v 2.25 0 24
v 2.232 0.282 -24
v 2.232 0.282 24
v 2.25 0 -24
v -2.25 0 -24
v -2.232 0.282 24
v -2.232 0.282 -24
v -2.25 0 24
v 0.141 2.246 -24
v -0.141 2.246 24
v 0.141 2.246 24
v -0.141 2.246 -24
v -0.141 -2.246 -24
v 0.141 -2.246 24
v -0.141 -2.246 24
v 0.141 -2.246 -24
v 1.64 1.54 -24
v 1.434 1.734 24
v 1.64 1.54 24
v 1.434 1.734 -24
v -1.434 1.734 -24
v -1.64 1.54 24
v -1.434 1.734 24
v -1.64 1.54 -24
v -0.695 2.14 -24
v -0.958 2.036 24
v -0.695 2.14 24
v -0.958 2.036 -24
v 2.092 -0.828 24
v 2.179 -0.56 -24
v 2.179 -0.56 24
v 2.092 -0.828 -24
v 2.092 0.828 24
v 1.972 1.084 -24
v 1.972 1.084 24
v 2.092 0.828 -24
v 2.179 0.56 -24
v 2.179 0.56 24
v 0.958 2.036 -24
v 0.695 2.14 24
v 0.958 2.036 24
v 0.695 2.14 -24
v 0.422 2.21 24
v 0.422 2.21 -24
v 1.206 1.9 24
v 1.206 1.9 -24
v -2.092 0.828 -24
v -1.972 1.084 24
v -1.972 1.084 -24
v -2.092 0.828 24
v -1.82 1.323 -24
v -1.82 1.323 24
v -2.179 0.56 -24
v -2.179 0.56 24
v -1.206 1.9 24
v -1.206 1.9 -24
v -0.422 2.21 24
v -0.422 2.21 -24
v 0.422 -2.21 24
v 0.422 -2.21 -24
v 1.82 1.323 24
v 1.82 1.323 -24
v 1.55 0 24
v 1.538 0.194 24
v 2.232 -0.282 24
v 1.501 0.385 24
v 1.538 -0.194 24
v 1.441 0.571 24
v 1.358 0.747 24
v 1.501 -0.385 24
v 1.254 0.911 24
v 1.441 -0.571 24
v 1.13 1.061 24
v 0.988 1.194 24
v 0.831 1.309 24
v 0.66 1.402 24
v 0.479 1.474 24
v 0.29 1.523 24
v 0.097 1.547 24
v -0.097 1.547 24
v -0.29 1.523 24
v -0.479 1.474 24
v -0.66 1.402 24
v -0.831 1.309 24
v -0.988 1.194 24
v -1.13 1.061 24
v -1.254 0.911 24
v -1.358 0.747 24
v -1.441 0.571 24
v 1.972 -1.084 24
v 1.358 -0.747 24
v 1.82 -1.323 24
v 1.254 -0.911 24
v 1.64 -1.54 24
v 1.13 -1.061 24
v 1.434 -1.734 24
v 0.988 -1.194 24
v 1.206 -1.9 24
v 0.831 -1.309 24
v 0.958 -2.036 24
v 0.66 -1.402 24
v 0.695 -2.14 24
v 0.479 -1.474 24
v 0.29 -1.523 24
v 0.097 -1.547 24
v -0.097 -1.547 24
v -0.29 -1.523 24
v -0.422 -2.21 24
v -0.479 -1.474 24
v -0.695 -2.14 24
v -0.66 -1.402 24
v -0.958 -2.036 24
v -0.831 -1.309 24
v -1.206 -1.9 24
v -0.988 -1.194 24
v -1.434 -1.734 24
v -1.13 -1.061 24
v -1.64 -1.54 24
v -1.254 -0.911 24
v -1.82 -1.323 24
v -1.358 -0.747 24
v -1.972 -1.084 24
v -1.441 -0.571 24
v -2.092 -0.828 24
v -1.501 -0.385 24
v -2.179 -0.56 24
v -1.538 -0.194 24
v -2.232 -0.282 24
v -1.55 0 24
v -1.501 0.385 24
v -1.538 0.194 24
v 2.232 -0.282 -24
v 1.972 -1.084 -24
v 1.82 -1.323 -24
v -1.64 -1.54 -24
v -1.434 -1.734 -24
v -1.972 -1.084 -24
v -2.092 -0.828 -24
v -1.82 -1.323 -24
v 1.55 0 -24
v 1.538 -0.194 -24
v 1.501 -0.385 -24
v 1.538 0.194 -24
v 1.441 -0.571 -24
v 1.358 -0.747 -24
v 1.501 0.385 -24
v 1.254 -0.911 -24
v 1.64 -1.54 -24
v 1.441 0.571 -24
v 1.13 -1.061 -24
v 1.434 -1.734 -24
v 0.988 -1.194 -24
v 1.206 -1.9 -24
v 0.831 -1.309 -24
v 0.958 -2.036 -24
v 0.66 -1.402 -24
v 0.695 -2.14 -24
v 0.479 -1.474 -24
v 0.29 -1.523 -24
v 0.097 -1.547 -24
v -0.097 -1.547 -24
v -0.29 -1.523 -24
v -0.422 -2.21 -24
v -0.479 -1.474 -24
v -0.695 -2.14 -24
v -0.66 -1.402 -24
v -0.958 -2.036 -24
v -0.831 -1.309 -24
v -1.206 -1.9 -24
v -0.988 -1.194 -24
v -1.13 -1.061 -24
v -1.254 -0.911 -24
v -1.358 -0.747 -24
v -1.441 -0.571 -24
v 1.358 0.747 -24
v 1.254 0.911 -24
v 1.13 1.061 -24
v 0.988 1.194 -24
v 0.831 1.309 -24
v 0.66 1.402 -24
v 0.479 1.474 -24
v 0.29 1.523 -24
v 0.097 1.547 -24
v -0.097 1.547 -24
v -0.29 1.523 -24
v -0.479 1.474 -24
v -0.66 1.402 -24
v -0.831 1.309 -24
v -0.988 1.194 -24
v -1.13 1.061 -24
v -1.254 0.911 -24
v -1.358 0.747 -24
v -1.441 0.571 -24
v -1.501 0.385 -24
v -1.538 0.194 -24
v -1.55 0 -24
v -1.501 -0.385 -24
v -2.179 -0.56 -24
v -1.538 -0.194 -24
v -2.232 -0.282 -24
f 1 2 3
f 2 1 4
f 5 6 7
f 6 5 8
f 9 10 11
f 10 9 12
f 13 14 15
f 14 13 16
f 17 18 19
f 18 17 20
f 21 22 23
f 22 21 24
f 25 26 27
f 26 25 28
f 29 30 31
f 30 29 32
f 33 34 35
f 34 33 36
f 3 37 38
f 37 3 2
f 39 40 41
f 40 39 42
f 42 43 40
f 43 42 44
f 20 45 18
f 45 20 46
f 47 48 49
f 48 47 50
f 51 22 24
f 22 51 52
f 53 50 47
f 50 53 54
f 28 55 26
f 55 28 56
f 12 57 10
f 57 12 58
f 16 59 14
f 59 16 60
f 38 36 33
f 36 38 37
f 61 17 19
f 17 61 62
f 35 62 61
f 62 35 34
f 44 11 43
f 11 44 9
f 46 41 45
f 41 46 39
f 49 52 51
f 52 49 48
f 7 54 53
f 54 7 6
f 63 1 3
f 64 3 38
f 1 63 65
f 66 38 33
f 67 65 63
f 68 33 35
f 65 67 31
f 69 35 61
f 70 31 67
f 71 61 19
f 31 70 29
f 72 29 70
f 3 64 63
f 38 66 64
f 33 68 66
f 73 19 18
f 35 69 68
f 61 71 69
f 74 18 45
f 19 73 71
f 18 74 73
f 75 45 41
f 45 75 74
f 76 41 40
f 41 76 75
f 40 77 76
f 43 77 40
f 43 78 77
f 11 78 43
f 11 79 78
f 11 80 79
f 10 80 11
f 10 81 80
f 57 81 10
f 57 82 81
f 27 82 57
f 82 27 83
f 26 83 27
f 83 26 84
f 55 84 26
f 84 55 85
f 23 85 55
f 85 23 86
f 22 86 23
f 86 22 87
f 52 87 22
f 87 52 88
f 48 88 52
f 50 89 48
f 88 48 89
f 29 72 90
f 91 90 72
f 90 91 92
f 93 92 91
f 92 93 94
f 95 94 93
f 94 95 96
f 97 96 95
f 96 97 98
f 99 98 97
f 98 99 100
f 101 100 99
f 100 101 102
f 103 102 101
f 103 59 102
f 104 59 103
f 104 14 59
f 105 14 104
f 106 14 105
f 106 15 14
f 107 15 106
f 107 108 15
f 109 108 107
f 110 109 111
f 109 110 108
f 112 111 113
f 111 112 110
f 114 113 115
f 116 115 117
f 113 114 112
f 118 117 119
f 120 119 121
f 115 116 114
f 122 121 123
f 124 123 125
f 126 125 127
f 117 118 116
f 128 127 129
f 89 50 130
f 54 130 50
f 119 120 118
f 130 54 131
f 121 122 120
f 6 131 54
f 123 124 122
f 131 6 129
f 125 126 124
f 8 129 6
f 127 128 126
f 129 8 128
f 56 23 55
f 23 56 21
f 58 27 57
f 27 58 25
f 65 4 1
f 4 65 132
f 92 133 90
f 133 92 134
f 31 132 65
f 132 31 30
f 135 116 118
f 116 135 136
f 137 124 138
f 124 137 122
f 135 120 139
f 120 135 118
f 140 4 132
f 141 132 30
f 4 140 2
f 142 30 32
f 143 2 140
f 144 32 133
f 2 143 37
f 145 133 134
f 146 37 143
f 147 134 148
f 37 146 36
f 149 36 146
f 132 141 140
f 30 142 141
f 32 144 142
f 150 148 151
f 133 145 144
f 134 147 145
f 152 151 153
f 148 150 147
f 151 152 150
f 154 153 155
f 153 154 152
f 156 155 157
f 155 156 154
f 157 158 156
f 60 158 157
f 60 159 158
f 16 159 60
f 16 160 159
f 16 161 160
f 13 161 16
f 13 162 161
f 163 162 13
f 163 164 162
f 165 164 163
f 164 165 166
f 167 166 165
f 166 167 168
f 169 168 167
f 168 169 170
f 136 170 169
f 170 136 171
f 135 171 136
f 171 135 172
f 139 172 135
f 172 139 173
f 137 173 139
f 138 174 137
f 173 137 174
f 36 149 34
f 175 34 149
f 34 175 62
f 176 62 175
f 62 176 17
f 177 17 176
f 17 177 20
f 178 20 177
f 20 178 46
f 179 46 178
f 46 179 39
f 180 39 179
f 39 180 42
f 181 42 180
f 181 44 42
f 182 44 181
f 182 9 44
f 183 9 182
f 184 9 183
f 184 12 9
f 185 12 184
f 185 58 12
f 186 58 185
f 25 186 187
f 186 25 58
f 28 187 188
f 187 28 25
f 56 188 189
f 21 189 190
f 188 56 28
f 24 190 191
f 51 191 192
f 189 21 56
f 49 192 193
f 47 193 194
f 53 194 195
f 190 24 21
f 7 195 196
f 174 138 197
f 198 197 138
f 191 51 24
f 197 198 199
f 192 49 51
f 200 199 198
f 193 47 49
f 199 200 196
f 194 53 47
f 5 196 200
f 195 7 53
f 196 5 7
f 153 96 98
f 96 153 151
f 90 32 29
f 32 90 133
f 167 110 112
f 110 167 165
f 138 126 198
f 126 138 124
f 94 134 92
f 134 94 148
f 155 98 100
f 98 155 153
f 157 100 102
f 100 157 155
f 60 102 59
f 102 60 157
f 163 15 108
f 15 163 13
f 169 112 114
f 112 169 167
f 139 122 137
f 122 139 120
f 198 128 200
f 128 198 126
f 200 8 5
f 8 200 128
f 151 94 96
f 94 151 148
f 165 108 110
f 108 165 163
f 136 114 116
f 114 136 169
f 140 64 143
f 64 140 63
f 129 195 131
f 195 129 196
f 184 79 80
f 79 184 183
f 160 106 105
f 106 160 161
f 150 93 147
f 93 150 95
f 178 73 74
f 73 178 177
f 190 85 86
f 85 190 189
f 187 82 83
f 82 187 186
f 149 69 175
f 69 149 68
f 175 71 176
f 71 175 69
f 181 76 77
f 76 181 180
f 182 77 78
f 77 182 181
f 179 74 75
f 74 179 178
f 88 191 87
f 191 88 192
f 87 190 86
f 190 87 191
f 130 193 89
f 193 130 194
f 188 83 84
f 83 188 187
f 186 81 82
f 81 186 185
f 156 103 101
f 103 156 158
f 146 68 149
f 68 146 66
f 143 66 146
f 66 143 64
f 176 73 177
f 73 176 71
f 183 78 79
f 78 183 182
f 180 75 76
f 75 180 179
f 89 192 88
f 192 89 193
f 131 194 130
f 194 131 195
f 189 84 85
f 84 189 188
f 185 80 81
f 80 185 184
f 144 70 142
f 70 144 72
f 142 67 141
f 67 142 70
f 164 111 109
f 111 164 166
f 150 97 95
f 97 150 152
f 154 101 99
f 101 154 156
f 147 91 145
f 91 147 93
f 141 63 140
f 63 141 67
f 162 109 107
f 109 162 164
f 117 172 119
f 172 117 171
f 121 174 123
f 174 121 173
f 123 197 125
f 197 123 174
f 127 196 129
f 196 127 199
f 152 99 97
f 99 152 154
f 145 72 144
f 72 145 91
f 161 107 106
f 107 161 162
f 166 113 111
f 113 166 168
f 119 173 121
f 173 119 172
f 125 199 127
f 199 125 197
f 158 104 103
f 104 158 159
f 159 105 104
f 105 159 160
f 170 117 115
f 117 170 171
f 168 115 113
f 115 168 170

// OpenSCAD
$fn = 50;


difference() {
	union() {
		translate(v = [0, 0, -24.0000000000]) {
			cylinder(h = 48, r = 2.2500000000);
		}
	}
	union() {
		translate(v = [0, 0, -100.0000000000]) {
			cylinder(h = 200, r = 1.5500000000);
		}
	}
}
